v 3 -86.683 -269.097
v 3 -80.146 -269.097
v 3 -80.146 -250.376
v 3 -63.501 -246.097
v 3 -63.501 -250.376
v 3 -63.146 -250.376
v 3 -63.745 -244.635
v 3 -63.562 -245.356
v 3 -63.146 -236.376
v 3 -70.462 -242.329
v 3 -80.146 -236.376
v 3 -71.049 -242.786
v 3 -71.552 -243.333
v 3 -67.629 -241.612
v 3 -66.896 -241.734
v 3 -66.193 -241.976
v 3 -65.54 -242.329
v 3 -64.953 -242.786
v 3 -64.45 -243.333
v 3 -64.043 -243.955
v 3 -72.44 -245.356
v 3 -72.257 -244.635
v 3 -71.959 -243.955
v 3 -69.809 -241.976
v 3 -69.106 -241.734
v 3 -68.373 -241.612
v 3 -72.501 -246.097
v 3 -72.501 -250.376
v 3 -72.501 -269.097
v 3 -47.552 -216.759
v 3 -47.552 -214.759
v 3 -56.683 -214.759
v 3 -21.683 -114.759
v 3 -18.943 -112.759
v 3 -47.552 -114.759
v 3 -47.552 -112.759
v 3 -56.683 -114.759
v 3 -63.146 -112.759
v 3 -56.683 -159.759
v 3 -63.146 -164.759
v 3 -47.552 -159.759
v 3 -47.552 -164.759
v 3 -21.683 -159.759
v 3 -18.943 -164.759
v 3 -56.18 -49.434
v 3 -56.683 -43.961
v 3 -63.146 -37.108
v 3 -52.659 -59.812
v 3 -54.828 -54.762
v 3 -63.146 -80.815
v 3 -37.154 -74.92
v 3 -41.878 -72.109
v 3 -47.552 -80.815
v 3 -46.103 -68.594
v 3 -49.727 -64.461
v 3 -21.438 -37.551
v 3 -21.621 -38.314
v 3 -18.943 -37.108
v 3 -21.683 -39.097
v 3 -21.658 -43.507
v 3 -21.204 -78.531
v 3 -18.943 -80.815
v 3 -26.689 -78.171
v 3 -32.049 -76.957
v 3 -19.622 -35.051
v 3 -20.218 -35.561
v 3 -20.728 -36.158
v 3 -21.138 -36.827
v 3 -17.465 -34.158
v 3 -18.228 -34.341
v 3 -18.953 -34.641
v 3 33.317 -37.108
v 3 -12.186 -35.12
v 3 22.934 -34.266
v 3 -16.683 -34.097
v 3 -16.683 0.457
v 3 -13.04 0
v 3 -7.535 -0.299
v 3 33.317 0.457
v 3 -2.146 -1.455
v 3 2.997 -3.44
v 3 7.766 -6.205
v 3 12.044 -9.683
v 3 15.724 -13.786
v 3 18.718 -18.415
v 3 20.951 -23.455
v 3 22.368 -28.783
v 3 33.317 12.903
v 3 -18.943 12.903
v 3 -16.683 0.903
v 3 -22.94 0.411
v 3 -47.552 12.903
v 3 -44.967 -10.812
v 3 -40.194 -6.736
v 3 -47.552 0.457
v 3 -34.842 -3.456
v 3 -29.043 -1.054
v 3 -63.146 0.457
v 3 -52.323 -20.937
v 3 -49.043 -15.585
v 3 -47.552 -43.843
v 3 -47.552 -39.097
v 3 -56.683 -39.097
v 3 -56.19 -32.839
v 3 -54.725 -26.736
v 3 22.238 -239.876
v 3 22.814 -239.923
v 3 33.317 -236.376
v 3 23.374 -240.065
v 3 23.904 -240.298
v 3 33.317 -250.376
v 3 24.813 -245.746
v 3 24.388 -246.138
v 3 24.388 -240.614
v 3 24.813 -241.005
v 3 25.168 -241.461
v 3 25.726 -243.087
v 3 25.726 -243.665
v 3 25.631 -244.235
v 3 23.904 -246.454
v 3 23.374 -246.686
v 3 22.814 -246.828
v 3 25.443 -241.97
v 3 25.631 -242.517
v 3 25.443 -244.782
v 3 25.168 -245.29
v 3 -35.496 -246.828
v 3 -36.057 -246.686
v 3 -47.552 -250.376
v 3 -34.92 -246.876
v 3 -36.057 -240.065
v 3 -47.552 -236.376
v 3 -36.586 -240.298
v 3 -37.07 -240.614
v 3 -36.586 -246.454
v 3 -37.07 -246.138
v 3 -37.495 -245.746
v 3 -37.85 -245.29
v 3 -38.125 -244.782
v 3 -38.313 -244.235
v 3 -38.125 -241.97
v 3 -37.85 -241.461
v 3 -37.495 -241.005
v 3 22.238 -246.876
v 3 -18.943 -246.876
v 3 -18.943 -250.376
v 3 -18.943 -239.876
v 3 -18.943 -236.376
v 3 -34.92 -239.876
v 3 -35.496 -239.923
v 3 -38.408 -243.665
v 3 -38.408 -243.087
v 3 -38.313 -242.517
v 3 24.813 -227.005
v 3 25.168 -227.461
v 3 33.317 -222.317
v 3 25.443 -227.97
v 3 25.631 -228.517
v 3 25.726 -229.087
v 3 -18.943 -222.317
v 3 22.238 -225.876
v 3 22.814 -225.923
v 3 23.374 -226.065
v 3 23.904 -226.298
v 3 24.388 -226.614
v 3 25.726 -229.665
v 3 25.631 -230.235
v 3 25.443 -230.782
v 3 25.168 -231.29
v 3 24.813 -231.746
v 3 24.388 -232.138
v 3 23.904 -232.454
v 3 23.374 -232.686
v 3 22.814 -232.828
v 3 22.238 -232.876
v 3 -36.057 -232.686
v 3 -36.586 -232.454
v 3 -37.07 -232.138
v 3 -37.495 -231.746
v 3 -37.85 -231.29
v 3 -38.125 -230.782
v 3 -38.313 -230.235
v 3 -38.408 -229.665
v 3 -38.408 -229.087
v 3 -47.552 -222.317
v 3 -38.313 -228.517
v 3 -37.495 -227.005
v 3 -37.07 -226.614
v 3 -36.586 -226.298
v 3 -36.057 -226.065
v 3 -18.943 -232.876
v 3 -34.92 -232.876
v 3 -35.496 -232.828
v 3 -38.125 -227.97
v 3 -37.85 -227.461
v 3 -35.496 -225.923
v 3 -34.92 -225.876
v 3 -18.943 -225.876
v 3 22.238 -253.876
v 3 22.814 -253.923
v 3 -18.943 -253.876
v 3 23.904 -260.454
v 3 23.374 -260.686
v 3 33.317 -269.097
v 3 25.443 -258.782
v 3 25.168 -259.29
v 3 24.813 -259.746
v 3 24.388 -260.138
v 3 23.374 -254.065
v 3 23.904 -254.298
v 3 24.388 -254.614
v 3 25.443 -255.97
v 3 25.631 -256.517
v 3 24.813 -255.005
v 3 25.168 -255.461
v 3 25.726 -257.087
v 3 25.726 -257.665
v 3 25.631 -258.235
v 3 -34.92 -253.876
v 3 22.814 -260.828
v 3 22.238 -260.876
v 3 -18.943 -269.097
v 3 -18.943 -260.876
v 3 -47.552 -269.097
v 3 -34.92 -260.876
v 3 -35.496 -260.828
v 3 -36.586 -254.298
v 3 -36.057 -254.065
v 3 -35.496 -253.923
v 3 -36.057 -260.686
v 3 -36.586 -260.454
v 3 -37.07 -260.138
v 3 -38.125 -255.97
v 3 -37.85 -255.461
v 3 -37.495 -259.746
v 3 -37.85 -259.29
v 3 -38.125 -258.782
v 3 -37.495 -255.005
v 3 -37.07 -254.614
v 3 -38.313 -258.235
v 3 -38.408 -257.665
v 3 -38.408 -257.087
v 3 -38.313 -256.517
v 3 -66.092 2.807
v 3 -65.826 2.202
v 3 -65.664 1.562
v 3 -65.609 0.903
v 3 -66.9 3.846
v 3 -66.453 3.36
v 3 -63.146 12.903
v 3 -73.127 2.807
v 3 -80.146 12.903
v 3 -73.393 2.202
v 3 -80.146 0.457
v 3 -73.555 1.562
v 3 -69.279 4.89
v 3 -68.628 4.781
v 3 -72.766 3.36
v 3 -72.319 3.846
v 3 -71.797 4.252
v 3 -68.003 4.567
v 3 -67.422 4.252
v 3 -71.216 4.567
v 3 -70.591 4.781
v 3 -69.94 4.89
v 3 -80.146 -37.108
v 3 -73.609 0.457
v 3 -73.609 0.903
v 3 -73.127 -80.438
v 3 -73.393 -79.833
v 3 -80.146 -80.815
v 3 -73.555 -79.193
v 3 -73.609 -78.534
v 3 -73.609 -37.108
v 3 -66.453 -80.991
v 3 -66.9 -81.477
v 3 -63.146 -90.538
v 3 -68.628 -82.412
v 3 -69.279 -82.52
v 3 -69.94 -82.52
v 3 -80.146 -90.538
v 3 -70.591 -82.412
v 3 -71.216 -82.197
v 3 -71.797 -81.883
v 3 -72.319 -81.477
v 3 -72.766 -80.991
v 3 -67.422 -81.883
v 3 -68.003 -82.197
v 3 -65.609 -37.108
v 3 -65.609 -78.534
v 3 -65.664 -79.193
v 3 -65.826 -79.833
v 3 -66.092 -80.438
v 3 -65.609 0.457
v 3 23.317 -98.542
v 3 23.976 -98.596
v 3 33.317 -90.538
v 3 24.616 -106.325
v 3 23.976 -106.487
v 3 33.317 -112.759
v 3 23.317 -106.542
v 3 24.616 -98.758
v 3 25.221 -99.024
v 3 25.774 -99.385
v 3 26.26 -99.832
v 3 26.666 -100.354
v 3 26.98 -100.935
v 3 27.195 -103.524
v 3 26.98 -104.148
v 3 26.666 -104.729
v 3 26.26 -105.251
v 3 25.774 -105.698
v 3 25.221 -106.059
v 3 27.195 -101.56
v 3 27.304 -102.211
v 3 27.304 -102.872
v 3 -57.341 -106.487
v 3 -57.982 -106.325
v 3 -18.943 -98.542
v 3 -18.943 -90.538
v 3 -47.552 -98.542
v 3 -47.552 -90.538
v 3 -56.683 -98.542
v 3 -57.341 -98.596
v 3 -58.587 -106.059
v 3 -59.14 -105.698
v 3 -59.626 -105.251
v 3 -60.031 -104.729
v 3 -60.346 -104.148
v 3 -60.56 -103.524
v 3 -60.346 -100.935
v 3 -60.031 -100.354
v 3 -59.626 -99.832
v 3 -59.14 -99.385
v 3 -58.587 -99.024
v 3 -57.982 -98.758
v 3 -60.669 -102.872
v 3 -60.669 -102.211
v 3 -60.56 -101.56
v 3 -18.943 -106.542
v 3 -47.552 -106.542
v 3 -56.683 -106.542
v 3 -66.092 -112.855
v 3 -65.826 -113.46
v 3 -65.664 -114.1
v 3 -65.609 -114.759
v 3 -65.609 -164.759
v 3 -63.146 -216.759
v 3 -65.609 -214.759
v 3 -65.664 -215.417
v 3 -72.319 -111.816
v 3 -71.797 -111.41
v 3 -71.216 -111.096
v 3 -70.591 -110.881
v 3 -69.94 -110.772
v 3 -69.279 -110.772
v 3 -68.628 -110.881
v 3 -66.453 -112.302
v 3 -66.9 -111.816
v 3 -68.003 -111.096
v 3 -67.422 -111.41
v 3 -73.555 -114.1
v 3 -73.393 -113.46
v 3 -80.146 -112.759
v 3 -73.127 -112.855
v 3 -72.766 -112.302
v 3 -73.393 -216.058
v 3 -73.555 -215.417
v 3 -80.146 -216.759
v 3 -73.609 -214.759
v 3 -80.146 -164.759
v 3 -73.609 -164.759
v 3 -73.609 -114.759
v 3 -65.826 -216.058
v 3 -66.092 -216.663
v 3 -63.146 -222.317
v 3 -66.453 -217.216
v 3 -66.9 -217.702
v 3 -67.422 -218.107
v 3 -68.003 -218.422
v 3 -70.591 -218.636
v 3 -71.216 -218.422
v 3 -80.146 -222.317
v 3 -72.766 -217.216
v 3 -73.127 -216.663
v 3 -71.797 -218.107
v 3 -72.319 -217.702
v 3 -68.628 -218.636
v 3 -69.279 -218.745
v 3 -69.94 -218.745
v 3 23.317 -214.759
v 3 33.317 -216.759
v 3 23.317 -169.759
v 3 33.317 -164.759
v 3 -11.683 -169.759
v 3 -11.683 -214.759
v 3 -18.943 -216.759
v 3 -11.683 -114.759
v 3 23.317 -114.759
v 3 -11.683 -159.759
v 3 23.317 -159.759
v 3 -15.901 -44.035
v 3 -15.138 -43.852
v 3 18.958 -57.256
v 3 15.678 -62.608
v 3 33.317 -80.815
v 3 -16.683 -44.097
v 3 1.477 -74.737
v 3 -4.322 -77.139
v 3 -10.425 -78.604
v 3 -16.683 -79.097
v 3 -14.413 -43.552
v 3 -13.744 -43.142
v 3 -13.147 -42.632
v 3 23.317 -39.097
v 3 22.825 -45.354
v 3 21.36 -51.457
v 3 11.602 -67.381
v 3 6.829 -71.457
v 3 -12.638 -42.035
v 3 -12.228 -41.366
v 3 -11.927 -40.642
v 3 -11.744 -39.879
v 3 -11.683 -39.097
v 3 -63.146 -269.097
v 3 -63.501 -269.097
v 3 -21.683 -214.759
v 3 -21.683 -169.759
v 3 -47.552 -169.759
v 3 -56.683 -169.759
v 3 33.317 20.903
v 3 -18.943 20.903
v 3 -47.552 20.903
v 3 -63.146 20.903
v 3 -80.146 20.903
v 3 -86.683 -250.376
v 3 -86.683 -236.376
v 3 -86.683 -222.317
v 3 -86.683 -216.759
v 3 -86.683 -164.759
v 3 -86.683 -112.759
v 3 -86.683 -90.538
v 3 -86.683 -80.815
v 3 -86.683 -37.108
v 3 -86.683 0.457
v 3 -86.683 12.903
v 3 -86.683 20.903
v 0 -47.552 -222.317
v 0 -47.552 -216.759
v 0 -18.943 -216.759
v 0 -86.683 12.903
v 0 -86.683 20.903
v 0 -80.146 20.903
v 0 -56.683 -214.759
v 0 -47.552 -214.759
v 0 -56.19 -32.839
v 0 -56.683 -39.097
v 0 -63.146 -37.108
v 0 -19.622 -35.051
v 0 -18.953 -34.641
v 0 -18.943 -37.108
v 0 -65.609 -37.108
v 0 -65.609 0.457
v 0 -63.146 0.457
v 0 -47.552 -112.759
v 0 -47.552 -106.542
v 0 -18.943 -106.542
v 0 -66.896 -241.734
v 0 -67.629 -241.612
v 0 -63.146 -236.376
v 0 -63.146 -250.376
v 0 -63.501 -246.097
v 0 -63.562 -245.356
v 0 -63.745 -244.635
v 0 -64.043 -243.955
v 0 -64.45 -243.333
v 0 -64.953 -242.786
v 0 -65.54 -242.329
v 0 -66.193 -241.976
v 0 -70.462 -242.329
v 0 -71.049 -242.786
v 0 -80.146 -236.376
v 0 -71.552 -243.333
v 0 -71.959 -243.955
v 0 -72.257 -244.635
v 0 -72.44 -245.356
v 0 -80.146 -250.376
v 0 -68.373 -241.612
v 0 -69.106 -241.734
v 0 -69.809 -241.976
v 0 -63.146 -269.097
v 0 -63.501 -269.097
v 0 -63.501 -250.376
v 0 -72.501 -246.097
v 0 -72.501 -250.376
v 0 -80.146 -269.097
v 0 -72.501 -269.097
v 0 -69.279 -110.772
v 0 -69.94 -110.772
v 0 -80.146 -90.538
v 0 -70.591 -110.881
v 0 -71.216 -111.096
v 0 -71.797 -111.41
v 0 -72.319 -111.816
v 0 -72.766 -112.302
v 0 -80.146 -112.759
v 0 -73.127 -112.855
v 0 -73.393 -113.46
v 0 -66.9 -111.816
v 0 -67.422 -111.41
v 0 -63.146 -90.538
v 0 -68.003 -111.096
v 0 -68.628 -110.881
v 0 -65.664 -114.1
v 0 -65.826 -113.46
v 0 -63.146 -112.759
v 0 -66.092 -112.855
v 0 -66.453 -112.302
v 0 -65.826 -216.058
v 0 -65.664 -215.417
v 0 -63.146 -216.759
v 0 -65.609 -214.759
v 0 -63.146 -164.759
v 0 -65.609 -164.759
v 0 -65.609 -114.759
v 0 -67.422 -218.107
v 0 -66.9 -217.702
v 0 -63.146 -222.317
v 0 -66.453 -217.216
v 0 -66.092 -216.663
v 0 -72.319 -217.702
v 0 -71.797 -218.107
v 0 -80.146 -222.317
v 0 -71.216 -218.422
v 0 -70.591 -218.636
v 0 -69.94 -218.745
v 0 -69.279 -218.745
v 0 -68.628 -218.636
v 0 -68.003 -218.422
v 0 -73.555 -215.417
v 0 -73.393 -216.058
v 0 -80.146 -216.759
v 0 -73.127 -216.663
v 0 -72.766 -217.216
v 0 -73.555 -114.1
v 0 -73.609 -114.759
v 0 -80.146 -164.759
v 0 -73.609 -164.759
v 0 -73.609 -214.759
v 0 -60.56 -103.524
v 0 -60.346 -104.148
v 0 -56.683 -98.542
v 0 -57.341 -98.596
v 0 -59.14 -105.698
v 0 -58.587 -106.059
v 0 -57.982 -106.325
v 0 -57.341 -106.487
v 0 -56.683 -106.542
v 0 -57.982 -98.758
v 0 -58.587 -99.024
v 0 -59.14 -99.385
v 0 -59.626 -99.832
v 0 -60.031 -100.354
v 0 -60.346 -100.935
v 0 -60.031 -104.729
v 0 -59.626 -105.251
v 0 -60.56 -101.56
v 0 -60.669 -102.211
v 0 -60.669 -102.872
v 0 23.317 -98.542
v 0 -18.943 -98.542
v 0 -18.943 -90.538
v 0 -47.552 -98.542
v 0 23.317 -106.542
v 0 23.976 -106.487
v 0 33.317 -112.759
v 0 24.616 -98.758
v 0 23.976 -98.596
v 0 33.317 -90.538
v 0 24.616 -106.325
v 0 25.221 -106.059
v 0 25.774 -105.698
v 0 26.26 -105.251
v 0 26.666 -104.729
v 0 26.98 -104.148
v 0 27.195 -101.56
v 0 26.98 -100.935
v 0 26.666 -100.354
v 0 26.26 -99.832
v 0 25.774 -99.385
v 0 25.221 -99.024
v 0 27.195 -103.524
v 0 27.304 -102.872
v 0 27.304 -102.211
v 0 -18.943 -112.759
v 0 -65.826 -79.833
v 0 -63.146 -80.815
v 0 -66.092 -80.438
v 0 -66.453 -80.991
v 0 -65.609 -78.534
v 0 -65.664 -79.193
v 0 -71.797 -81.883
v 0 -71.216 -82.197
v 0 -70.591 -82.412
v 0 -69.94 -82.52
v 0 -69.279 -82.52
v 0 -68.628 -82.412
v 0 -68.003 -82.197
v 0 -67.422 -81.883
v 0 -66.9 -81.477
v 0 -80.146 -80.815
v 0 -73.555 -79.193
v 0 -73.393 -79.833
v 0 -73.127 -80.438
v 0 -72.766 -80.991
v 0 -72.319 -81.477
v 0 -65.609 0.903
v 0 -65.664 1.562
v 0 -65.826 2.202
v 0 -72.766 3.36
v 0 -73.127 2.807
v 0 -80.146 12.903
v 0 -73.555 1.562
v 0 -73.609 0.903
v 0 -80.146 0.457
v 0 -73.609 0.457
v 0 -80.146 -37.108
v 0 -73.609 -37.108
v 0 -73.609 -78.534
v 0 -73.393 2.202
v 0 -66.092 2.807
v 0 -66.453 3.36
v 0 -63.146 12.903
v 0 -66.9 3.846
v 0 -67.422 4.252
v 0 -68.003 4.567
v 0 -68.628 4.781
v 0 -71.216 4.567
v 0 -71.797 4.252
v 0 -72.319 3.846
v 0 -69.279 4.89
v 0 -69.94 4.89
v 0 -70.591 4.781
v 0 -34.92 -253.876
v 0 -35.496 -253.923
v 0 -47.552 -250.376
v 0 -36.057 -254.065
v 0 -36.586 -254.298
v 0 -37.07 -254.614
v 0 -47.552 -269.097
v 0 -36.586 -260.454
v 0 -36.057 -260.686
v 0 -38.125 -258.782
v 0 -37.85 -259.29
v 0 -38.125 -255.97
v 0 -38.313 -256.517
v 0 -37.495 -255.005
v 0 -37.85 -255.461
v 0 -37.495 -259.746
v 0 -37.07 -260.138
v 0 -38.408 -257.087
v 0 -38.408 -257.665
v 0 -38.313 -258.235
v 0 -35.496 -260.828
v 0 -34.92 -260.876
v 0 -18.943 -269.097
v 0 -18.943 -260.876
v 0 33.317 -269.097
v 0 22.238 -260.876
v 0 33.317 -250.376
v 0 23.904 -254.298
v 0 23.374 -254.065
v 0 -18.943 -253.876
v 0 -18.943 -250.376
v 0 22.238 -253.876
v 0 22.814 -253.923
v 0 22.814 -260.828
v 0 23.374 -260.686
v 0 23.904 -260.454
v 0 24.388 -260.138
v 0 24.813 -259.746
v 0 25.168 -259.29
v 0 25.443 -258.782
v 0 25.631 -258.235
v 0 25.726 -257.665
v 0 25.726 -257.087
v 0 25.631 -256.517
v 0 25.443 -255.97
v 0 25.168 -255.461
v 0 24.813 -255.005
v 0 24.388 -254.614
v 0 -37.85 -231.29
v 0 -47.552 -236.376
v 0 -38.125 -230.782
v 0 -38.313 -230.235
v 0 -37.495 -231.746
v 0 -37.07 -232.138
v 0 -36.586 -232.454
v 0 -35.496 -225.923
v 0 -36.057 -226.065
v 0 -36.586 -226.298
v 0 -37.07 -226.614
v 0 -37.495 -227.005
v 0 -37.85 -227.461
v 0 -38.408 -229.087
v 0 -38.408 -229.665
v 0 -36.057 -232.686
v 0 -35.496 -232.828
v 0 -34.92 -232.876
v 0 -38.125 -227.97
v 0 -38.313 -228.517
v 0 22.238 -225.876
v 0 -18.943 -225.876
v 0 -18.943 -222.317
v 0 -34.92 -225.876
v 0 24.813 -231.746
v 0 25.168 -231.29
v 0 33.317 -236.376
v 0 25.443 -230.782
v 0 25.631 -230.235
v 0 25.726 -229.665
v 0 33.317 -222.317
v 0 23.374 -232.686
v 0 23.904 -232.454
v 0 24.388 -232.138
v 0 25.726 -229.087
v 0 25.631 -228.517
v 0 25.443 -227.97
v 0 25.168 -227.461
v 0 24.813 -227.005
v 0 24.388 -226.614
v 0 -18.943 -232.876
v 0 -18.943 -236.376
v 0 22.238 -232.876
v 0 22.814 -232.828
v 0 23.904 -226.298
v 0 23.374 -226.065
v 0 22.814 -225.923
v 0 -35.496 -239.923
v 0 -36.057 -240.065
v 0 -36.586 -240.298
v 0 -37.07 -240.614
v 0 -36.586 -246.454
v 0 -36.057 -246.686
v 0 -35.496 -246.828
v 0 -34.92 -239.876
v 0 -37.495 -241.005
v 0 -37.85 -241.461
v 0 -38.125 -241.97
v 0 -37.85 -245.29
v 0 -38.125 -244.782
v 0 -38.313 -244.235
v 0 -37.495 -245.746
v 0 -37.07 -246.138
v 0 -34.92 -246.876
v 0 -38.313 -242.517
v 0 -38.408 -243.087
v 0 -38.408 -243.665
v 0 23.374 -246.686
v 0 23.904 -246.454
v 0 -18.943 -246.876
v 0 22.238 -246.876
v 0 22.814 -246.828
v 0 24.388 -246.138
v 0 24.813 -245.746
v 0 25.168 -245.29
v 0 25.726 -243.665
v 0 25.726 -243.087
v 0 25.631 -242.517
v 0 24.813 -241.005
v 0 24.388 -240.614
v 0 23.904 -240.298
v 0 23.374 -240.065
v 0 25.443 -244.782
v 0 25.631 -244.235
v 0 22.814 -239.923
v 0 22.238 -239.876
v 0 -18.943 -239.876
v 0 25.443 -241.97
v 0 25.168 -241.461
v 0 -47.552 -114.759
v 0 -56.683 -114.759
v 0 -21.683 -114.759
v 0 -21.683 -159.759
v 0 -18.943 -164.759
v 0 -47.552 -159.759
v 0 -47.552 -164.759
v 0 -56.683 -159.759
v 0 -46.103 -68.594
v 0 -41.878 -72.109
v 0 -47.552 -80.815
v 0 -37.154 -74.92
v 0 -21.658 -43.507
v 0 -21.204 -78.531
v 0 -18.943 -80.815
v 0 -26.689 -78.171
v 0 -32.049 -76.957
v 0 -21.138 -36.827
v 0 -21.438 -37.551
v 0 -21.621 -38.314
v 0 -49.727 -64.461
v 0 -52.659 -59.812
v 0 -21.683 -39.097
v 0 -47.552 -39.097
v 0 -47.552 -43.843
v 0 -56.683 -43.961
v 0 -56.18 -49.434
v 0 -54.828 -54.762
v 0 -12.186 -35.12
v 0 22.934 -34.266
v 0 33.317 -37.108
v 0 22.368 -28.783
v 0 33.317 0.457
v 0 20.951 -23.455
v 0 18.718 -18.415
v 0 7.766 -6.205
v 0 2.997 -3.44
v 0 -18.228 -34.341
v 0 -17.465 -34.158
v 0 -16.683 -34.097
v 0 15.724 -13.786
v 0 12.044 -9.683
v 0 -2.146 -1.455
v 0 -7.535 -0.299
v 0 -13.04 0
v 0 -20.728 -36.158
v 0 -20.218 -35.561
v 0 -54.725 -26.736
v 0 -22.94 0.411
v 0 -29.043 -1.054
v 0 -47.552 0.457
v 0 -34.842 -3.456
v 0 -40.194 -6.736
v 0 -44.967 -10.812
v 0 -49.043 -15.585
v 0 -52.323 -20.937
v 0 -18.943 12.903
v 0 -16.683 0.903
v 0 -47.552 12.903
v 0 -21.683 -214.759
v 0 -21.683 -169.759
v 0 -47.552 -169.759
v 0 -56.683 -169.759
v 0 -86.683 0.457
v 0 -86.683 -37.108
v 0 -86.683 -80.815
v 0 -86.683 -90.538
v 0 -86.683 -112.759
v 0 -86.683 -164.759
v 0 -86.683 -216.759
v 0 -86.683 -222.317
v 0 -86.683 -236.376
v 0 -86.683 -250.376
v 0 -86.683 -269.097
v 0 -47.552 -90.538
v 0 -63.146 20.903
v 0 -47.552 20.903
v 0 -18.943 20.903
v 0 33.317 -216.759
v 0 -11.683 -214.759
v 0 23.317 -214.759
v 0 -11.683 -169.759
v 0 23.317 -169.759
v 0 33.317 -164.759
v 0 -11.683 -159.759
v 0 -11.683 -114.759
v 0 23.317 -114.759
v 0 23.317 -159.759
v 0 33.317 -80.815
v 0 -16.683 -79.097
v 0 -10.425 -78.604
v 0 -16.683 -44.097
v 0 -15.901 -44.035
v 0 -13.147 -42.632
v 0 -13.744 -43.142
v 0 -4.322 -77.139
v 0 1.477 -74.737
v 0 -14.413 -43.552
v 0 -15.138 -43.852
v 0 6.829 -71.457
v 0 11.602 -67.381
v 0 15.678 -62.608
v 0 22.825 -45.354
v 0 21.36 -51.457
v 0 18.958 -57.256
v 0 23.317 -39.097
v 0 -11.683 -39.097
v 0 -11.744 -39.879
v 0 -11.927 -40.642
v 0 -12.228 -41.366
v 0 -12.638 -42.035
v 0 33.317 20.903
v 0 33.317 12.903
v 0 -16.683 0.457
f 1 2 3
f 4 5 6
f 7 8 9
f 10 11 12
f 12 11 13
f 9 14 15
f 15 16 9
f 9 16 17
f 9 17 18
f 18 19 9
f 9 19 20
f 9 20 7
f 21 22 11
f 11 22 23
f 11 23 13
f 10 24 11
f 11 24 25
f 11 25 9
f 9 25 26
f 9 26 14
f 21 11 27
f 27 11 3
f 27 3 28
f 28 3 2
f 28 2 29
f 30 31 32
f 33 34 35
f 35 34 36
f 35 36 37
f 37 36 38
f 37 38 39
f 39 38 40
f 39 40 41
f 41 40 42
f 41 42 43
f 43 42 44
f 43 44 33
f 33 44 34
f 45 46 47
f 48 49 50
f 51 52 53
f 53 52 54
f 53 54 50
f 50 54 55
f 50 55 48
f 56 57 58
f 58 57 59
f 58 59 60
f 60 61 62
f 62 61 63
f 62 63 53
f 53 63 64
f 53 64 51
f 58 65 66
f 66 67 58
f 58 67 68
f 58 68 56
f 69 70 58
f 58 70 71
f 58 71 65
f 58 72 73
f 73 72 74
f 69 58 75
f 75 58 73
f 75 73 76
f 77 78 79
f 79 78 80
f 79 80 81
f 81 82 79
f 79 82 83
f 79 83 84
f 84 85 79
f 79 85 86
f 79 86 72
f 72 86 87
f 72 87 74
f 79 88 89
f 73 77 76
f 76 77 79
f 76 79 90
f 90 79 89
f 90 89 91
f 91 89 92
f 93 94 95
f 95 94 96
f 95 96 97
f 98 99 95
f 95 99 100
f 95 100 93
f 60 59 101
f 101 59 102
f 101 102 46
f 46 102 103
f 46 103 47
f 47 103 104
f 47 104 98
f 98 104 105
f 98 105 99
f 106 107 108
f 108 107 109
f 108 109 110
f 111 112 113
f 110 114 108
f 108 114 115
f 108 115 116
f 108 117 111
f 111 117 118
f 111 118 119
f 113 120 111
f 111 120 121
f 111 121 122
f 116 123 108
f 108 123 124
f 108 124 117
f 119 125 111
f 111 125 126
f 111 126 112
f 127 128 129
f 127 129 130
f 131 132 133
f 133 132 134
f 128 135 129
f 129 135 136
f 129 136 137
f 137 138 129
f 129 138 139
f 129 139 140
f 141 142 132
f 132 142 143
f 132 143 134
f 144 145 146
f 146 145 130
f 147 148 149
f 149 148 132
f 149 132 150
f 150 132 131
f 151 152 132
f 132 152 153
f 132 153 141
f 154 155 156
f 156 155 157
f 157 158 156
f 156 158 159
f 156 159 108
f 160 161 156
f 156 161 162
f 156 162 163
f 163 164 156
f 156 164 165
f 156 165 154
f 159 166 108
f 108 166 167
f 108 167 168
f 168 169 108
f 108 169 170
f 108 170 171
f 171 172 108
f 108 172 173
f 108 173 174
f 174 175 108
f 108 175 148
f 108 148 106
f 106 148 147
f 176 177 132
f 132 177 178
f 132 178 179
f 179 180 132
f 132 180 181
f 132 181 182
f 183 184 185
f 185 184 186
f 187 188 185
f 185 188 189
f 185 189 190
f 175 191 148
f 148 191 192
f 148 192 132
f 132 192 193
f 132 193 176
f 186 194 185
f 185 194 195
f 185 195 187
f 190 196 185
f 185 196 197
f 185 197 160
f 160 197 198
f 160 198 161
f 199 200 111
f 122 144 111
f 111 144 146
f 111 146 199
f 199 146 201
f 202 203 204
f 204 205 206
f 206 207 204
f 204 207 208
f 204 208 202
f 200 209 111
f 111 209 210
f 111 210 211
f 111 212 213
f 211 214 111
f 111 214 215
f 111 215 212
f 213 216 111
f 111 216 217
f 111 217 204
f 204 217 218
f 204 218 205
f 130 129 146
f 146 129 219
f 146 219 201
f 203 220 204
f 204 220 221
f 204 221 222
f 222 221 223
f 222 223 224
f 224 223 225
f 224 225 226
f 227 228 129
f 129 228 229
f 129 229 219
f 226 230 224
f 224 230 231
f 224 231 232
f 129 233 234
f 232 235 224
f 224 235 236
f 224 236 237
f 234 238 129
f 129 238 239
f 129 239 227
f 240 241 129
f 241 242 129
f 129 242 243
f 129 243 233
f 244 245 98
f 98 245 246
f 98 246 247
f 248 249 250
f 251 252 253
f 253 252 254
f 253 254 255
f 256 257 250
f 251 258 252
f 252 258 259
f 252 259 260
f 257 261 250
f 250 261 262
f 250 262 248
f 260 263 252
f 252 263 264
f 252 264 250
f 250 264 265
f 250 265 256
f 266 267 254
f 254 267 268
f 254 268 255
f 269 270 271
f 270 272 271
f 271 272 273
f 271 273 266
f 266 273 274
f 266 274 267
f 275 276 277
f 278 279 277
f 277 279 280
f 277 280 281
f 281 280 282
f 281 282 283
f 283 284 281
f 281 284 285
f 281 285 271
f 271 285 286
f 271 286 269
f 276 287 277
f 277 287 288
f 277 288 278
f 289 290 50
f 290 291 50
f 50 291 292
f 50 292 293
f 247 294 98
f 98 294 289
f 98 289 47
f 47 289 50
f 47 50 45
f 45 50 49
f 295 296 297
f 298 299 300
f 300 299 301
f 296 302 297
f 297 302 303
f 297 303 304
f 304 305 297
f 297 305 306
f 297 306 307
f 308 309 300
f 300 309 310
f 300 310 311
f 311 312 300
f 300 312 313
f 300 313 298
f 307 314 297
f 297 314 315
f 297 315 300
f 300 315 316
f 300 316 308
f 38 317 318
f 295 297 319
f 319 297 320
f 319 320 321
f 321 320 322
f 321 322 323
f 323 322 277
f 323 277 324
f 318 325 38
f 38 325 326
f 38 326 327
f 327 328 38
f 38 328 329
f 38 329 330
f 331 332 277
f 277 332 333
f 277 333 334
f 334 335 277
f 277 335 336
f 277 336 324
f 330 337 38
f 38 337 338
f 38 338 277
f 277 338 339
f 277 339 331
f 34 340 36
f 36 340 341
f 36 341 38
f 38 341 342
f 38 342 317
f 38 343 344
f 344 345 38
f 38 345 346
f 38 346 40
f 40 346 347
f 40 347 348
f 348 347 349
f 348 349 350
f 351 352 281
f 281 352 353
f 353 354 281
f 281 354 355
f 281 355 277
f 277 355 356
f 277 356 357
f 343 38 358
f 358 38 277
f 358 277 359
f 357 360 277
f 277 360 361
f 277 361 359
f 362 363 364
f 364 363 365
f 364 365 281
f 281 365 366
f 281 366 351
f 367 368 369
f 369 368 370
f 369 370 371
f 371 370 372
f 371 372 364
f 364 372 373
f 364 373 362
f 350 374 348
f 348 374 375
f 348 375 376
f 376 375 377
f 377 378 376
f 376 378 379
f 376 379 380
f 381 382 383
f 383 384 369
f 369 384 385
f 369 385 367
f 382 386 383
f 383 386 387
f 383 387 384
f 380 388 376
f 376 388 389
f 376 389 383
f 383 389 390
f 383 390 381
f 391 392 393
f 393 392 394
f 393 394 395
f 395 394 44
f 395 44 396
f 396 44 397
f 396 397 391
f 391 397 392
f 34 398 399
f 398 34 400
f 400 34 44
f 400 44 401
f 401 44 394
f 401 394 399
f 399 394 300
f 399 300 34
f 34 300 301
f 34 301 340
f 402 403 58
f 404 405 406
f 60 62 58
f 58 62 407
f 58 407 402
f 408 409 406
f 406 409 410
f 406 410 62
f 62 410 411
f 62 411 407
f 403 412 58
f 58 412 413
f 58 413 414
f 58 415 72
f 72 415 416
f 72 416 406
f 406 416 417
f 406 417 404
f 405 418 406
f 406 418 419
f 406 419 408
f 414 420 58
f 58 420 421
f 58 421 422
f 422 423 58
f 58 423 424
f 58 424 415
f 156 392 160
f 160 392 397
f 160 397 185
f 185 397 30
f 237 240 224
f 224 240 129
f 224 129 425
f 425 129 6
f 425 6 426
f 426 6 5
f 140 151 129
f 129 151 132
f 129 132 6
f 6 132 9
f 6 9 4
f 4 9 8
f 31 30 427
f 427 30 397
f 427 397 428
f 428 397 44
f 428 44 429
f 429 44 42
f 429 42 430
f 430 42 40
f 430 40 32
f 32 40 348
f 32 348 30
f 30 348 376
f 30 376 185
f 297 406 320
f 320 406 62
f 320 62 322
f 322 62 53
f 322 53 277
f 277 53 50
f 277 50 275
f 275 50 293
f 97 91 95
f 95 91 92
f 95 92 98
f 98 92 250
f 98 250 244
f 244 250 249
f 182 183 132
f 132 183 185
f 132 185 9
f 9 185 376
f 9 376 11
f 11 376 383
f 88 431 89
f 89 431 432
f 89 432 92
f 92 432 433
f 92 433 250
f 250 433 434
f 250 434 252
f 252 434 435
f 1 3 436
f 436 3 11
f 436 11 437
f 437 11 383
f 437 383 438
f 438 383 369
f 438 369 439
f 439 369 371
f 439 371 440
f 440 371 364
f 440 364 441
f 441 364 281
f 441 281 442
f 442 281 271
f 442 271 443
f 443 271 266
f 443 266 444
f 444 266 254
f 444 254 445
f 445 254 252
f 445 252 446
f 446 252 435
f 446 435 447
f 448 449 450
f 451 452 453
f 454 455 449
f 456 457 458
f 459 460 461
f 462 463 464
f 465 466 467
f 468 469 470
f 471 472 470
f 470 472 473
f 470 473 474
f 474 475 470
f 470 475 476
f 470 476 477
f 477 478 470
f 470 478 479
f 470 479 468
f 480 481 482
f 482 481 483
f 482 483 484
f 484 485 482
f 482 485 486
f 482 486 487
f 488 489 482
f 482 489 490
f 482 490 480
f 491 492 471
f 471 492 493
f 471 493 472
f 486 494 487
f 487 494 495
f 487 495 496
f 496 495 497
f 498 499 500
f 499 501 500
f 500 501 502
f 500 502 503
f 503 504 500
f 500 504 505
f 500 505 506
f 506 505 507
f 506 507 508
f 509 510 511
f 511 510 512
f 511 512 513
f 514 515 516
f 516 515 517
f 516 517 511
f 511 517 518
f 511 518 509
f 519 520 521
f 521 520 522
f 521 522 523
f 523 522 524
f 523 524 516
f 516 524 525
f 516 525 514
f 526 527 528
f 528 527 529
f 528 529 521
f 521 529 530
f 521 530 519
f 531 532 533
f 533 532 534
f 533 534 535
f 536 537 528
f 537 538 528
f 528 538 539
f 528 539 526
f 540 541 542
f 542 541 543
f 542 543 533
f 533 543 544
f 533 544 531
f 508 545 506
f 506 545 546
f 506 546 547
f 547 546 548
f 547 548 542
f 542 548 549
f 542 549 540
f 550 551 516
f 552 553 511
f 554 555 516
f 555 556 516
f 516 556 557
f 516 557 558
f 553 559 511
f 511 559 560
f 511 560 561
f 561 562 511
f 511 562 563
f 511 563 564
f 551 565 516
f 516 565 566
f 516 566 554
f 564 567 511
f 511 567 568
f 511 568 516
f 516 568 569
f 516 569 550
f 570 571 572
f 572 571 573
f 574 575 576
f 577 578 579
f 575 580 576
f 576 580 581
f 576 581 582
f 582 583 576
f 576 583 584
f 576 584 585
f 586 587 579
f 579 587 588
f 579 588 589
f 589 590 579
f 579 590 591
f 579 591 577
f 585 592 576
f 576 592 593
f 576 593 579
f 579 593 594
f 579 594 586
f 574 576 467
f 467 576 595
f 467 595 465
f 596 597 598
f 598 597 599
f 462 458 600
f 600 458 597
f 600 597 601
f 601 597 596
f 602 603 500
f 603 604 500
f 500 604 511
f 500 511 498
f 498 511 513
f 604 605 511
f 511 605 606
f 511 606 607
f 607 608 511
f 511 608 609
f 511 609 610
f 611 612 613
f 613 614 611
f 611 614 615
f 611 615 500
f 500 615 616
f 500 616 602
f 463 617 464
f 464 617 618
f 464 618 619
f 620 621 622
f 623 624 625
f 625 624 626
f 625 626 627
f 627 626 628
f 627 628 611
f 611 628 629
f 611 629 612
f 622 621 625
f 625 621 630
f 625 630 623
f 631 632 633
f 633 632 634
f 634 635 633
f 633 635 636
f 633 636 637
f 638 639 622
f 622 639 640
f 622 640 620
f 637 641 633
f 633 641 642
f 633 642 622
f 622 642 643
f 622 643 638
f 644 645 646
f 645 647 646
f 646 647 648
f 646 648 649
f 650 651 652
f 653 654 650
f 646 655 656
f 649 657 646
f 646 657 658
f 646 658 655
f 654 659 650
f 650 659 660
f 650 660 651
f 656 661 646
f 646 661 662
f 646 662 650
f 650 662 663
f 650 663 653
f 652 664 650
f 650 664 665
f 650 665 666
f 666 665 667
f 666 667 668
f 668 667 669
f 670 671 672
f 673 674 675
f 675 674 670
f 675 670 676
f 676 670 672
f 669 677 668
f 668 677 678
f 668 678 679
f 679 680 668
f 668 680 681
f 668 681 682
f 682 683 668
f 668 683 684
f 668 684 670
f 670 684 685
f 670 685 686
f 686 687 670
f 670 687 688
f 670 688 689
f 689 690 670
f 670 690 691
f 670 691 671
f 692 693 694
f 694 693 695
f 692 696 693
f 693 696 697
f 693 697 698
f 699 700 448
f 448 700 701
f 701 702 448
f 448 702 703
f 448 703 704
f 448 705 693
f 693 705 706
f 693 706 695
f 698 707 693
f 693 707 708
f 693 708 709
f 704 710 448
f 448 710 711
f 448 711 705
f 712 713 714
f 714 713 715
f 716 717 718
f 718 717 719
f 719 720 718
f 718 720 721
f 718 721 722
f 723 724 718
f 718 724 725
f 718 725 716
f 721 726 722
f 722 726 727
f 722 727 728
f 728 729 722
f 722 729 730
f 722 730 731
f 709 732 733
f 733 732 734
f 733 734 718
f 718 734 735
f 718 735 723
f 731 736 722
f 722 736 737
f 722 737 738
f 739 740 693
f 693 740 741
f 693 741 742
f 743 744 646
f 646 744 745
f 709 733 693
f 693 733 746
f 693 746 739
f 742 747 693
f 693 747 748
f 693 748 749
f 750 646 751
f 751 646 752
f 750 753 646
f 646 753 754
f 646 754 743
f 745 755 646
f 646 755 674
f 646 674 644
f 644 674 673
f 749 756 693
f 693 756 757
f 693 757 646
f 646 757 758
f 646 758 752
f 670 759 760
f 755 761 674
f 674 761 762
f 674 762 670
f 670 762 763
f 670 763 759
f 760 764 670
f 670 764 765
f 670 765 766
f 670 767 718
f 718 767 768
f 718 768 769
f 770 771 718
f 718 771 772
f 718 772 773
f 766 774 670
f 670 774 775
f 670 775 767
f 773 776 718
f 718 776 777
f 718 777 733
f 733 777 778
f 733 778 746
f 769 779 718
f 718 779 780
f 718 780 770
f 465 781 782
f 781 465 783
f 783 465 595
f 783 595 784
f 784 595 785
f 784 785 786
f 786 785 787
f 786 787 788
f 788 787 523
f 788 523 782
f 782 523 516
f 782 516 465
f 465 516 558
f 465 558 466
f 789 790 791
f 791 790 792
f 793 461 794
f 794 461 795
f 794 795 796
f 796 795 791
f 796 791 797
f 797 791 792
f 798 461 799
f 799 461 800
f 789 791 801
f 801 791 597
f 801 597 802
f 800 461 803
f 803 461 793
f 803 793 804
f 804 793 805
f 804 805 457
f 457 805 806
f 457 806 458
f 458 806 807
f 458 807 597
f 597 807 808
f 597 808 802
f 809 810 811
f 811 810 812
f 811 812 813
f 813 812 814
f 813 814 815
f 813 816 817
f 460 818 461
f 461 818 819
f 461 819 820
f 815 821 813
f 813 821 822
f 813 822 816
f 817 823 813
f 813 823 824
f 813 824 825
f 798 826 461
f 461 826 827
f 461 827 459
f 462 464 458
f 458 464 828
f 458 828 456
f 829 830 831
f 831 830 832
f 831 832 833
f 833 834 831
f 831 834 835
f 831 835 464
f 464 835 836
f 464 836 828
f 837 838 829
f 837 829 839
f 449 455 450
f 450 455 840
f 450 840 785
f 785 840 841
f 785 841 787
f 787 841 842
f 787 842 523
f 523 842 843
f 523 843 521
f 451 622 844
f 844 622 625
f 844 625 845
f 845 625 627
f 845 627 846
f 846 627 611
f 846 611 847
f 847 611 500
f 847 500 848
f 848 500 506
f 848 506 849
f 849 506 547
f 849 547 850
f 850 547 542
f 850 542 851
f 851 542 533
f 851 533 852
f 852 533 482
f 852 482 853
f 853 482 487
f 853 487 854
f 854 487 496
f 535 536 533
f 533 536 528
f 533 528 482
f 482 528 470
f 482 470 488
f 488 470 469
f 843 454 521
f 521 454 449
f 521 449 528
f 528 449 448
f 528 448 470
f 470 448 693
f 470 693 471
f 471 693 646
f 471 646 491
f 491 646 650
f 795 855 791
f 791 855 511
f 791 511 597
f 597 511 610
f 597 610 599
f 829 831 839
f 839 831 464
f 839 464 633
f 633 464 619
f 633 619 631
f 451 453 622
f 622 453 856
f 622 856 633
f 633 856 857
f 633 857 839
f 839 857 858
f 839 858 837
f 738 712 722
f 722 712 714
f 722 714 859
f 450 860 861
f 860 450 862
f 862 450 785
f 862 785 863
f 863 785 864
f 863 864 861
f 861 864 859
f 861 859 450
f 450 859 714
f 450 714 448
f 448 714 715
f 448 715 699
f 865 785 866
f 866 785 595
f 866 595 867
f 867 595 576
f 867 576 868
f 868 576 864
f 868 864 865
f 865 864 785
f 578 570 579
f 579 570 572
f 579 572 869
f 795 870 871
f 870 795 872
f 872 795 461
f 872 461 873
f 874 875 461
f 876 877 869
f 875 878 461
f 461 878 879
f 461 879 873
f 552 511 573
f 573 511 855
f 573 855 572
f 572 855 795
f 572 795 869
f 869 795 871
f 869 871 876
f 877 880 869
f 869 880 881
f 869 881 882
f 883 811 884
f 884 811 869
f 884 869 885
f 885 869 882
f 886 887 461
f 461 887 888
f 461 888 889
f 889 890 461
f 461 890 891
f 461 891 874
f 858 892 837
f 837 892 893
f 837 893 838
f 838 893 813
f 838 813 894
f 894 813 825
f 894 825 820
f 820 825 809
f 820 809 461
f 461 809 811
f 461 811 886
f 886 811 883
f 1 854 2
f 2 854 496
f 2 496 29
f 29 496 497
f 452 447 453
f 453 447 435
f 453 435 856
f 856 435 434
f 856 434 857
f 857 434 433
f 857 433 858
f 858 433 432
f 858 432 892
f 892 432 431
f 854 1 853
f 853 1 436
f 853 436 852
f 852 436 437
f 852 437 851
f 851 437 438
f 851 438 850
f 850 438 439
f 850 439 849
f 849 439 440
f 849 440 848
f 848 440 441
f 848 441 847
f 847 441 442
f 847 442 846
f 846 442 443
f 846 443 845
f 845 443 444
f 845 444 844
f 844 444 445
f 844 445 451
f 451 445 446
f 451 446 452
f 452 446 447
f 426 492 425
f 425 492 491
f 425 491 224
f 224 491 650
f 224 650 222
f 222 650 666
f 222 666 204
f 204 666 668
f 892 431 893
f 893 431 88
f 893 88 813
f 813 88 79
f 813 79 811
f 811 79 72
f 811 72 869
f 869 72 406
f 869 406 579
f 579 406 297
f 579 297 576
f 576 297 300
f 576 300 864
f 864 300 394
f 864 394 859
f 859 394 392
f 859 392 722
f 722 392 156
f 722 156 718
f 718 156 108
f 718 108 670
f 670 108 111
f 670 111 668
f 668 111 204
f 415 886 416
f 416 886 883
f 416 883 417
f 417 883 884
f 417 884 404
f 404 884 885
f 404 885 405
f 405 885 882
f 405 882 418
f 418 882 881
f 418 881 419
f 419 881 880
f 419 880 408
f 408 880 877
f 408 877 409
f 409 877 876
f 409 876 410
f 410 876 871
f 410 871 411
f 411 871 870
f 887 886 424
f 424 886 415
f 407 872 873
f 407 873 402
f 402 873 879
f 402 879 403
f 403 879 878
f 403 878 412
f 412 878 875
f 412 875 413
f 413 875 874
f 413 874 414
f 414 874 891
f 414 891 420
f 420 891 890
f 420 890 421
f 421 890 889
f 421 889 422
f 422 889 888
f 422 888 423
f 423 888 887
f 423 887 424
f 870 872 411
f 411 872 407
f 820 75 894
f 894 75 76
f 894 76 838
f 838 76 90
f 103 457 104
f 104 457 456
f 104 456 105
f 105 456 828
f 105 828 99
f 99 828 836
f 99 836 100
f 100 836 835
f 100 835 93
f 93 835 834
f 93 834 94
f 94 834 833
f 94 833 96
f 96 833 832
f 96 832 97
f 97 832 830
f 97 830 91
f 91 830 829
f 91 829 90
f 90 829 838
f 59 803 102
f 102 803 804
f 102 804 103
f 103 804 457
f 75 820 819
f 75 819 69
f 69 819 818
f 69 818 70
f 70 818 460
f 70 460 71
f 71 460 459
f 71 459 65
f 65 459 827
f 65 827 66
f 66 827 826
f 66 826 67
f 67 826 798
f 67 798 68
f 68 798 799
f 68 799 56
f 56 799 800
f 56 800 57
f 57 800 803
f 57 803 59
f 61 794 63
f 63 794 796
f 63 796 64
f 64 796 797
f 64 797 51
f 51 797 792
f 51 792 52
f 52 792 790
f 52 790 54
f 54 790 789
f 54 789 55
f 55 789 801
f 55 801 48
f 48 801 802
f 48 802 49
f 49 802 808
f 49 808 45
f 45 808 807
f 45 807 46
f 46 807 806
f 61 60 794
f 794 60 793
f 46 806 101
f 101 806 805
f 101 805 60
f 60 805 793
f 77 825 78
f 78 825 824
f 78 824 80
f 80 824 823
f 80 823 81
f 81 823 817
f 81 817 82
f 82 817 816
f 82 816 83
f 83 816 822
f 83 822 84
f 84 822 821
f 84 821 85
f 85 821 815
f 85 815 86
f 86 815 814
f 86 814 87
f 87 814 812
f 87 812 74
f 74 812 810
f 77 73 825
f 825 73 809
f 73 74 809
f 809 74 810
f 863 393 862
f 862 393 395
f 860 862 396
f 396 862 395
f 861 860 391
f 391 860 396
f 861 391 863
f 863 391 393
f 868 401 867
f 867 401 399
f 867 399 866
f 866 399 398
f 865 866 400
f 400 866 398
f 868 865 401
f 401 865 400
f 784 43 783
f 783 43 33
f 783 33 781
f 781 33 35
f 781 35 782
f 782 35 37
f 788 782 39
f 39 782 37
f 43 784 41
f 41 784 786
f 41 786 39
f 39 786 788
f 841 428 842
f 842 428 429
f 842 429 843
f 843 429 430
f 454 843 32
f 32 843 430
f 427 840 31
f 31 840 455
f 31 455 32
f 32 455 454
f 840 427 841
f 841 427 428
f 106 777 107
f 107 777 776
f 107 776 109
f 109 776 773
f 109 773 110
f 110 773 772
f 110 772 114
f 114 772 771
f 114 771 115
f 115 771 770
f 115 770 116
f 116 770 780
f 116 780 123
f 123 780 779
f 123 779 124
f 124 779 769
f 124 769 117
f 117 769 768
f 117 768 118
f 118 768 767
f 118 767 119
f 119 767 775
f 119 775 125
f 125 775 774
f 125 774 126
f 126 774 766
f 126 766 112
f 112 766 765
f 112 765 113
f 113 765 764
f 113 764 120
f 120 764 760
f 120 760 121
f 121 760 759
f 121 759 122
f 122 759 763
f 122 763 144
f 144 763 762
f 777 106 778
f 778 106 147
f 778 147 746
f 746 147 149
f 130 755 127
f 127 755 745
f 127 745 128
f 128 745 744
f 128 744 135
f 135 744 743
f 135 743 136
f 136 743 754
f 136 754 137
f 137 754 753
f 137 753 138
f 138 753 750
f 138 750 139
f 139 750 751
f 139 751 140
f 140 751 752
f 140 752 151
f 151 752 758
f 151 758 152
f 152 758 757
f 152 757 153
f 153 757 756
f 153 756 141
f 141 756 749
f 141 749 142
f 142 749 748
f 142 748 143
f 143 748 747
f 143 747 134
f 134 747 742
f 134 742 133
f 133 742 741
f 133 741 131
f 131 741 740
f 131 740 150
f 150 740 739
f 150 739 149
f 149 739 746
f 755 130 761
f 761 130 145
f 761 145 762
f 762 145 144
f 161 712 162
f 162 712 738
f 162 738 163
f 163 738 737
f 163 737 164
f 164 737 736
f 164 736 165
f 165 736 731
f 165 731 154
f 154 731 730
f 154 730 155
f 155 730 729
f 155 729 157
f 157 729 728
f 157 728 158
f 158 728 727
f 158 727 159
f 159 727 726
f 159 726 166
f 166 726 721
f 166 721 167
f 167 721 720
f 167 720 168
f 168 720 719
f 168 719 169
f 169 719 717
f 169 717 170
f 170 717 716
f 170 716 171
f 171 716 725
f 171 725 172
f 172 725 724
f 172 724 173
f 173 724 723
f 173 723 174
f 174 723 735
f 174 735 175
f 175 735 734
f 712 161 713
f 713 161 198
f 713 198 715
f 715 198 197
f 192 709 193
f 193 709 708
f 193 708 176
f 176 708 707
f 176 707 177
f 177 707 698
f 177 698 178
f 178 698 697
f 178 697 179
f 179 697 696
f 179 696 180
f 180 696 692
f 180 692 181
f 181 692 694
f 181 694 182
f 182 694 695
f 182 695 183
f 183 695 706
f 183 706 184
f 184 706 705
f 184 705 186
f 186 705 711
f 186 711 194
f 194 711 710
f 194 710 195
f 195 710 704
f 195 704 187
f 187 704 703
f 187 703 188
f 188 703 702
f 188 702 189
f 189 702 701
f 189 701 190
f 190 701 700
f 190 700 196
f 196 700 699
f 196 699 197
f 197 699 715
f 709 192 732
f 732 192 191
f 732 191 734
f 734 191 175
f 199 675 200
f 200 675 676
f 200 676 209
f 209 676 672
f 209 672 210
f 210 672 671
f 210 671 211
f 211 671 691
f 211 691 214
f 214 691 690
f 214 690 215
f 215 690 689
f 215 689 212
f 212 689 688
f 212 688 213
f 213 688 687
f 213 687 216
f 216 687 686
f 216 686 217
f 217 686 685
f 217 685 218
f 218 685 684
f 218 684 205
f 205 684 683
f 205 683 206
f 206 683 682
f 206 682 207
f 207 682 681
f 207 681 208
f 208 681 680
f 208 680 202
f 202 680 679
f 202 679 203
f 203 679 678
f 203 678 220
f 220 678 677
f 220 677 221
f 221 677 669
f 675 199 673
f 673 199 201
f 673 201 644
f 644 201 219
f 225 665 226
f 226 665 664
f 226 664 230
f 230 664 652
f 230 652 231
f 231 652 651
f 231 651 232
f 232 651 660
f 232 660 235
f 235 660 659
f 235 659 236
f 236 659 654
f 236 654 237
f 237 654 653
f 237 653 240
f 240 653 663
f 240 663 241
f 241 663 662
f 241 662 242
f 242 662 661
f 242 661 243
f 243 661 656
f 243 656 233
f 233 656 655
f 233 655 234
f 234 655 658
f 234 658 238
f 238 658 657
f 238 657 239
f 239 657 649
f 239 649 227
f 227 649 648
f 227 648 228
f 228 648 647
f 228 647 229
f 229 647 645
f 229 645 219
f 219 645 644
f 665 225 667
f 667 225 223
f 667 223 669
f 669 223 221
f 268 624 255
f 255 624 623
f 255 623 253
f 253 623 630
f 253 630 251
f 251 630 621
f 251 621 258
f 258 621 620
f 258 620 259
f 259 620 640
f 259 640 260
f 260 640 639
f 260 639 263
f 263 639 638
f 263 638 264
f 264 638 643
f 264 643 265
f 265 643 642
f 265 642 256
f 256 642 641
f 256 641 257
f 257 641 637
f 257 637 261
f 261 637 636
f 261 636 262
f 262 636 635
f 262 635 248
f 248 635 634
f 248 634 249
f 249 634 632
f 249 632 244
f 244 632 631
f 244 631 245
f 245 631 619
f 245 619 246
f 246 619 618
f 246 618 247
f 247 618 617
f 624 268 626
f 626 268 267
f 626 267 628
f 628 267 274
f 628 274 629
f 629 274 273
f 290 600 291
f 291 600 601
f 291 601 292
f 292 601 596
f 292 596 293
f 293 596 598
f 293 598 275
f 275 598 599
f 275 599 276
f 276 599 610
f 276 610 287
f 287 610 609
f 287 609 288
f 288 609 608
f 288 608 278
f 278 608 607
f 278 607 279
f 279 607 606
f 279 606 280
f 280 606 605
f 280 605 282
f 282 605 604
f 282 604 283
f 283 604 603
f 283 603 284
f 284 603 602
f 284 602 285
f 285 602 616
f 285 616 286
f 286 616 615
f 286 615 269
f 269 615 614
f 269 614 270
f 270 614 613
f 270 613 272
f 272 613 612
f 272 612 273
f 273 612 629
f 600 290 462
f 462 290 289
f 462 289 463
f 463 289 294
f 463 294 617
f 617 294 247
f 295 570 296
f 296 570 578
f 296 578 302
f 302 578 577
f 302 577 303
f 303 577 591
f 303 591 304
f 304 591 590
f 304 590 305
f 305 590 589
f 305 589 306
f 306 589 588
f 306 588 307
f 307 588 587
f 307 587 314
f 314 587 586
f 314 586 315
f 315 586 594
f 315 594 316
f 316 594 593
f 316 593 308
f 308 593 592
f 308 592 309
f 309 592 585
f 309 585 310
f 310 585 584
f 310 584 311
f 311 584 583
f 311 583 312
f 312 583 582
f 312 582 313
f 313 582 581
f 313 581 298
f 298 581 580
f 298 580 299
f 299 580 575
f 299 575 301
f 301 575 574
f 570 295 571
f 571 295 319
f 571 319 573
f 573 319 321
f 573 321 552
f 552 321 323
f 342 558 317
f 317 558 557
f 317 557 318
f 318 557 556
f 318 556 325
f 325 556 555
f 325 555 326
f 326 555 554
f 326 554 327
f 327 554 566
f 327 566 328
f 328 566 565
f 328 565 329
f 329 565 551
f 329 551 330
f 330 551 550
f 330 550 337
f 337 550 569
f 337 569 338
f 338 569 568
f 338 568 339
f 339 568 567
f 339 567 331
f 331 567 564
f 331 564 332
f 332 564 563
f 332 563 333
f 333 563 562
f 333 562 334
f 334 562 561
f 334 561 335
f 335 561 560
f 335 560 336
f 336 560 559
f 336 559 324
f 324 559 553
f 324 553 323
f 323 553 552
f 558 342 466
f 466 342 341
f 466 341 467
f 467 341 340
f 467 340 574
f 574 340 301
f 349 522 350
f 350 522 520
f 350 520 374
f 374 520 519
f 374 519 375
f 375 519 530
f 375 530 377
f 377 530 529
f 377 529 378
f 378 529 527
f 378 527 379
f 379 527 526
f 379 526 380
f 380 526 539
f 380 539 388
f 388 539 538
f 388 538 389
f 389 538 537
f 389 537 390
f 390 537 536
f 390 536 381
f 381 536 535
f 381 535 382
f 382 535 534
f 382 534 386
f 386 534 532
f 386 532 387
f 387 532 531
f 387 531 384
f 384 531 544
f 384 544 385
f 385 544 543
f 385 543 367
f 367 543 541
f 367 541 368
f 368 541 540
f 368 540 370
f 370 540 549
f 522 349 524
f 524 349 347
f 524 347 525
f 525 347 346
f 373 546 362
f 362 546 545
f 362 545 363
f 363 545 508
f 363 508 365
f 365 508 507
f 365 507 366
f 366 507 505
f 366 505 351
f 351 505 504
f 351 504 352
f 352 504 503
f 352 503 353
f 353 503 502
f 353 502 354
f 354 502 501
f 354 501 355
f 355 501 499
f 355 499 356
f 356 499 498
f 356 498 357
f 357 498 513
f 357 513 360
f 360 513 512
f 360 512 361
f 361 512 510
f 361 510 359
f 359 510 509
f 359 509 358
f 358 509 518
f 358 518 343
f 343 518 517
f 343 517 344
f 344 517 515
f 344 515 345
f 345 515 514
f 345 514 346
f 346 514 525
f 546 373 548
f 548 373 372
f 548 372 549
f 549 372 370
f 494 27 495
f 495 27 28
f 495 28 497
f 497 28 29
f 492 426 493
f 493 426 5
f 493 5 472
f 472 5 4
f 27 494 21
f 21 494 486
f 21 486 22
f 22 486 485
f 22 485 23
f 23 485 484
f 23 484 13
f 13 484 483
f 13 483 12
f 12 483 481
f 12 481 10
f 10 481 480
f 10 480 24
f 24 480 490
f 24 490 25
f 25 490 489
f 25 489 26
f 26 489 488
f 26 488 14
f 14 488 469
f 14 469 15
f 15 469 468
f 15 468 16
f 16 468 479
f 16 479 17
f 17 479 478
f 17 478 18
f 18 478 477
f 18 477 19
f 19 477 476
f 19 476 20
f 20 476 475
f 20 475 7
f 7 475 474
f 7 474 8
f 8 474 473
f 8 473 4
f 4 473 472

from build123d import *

# Parameters (mm, degrees)
SKETCH_1_W           = 290
SKETCH_1_H           = 120
EXTRUDE_1_DEPTH      = 3
CUT_EXTRUDE_5_DEPTH  = 10
CUT_EXTRUDE_6_DEPTH  = 3
SKETCH_4_W           = 45
SKETCH_4_H           = 35
CUT_EXTRUDE_10_DEPTH = 10
CUT_EXTRUDE_11_DEPTH = 3
CUT_EXTRUDE_12_DEPTH = 3
CUT_EXTRUDE_13_DEPTH = 3


with BuildPart() as part:
    # 草图1 → 凸台-拉伸1 (new body)
    with BuildSketch(Plane(origin=(0, 0, 0), x_dir=(0, 0, -1), z_dir=(1, 0, 0))):
        with Locations((124.096517683, -26.682755594)):
            Rectangle(SKETCH_1_W, SKETCH_1_H)
    extrude(amount=EXTRUDE_1_DEPTH)

    # 草图2 → 切除-拉伸5 (cut)
    with BuildSketch(Plane.ZY):
        with BuildLine():
            ThreePointArc((-39.096517683, 23.317244406), (-67.38078893, 11.601515654), (-79.096517683, -16.682755594))
            Line((-79.096517683, -16.682755594), (-44.096517683, -16.682755594))
            ThreePointArc((-44.096517683, -16.682755594), (-42.632051589, -13.147221688), (-39.096517683, -11.682755594))
            Line((-39.096517683, -11.682755594), (-39.096517683, 23.317244406))
        make_face()
        with BuildLine():
            Line((0.903482317, -16.682755594), (-34.096517683, -16.682755594))
            ThreePointArc((-34.096517683, -16.682755594), (-35.560983777, -20.2182895), (-39.096517683, -21.682755594))
            Line((-39.096517683, -21.682755594), (-39.096517683, -56.682755594))
            ThreePointArc((-39.096517683, -56.682755594), (-10.812246435, -44.967026841), (0.903482317, -16.682755594))
        make_face()
    extrude(amount=-CUT_EXTRUDE_5_DEPTH, mode=Mode.SUBTRACT)

    # 草图3 → 切除-拉伸6 (cut)
    with BuildSketch(Plane.ZY):
        with BuildLine():
            Line((-78.531190081, -21.204087707), (-43.506744141, -21.658309654))
            Line((-43.506744141, -21.658309654), (-43.960966088, -56.682755594))
            ThreePointArc((-43.960966088, -56.682755594), (-68.593950791, -46.103149466), (-78.531190081, -21.204087707))
        make_face()
        with BuildLine():
            Line((-34.265995521, 22.933541451), (-35.119719469, -12.186178019))
            Line((-35.119719469, -12.186178019), (0, -13.039901967))
            ThreePointArc((0, -13.039901967), (-9.682653686, 12.043539778), (-34.265995521, 22.933541451))
        make_face()
    extrude(amount=-CUT_EXTRUDE_6_DEPTH, mode=Mode.SUBTRACT)

    # 草图4 → 切除-拉伸10 (cut)
    with BuildSketch(Plane.ZY):
        with Locations((-192.258808878, 5.817244406)):
            Rectangle(SKETCH_4_W, SKETCH_4_H)
        with Locations((-137.258808878, 5.817244406)):
            Rectangle(SKETCH_4_W, SKETCH_4_H)
        with Locations((-192.258808878, -39.182755594)):
            Rectangle(SKETCH_4_W, SKETCH_4_H)
        with Locations((-137.258808878, -39.182755594)):
            Rectangle(SKETCH_4_W, SKETCH_4_H)
    extrude(amount=-CUT_EXTRUDE_10_DEPTH, mode=Mode.SUBTRACT)

    # 草图5 → 切除-拉伸11 (cut)
    with BuildSketch(Plane.ZY):
        with BuildLine():
            Line((-239.875713673, 22.237845944), (-239.875713673, -34.9202452))
            ThreePointArc((-239.875713673, -34.9202452), (-243.375713673, -38.4202452), (-246.875713673, -34.9202452))
            Line((-246.875713673, -34.9202452), (-246.875713673, 22.237845944))
            ThreePointArc((-246.875713673, 22.237845944), (-243.375713673, 25.737845944), (-239.875713673, 22.237845944))
        make_face()
        with BuildLine():
            Line((-225.875713673, 22.237845944), (-225.875713673, -34.9202452))
            ThreePointArc((-225.875713673, -34.9202452), (-229.375713673, -38.4202452), (-232.875713673, -34.9202452))
            Line((-232.875713673, -34.9202452), (-232.875713673, 22.237845944))
            ThreePointArc((-232.875713673, 22.237845944), (-229.375713673, 25.737845944), (-225.875713673, 22.237845944))
        make_face()
        with BuildLine():
            Line((-253.875713673, 22.237845944), (-253.875713673, -34.9202452))
            ThreePointArc((-253.875713673, -34.9202452), (-257.375713673, -38.4202452), (-260.875713673, -34.9202452))
            Line((-260.875713673, -34.9202452), (-260.875713673, 22.237845944))
            ThreePointArc((-260.875713673, 22.237845944), (-257.375713673, 25.737845944), (-253.875713673, 22.237845944))
        make_face()
    extrude(amount=-CUT_EXTRUDE_11_DEPTH, mode=Mode.SUBTRACT)

    # 草图6 → 切除-拉伸12 (cut)
    with BuildSketch(Plane.ZY):
        with BuildLine():
            Line((-214.758808878, -65.609469687), (-114.758808878, -65.609469687))
            ThreePointArc((-114.758808878, -65.609469687), (-110.758808878, -69.609469687), (-114.758808878, -73.609469687))
            Line((-114.758808878, -73.609469687), (-214.758808878, -73.609469687))
            ThreePointArc((-214.758808878, -73.609469687), (-218.758808878, -69.609469687), (-214.758808878, -65.609469687))
        make_face()
        with BuildLine():
            Line((-98.541599086, 23.317244406), (-98.541599086, -56.682755594))
            ThreePointArc((-98.541599086, -56.682755594), (-102.541599086, -60.682755594), (-106.541599086, -56.682755594))
            Line((-106.541599086, -56.682755594), (-106.541599086, 23.317244406))
            ThreePointArc((-106.541599086, 23.317244406), (-102.541599086, 27.317244406), (-98.541599086, 23.317244406))
        make_face()
        with BuildLine():
            Line((0.903482317, -73.609469687), (-78.534135294, -73.609469687))
            ThreePointArc((-78.534135294, -73.609469687), (-82.534135294, -69.609469687), (-78.534135294, -65.609469687))
            Line((-78.534135294, -65.609469687), (0.903482317, -65.609469687))
            ThreePointArc((0.903482317, -65.609469687), (4.903482317, -69.609469687), (0.903482317, -73.609469687))
        make_face()
    extrude(amount=-CUT_EXTRUDE_12_DEPTH, mode=Mode.SUBTRACT)

    # 草图7 → 切除-拉伸13 (cut)
    with BuildSketch(Plane.ZY):
        with BuildLine():
            Line((-269.096517683, -72.501000298), (-246.096517683, -72.501000298))
            ThreePointArc((-246.096517683, -72.501000298), (-241.596517683, -68.001000298), (-246.096517683, -63.501000298))
            Line((-246.096517683, -63.501000298), (-269.096517683, -63.501000298))
            Line((-269.096517683, -63.501000298), (-269.096517683, -72.501000298))
        make_face()
    extrude(amount=-CUT_EXTRUDE_13_DEPTH, mode=Mode.SUBTRACT)


solid = part.part
